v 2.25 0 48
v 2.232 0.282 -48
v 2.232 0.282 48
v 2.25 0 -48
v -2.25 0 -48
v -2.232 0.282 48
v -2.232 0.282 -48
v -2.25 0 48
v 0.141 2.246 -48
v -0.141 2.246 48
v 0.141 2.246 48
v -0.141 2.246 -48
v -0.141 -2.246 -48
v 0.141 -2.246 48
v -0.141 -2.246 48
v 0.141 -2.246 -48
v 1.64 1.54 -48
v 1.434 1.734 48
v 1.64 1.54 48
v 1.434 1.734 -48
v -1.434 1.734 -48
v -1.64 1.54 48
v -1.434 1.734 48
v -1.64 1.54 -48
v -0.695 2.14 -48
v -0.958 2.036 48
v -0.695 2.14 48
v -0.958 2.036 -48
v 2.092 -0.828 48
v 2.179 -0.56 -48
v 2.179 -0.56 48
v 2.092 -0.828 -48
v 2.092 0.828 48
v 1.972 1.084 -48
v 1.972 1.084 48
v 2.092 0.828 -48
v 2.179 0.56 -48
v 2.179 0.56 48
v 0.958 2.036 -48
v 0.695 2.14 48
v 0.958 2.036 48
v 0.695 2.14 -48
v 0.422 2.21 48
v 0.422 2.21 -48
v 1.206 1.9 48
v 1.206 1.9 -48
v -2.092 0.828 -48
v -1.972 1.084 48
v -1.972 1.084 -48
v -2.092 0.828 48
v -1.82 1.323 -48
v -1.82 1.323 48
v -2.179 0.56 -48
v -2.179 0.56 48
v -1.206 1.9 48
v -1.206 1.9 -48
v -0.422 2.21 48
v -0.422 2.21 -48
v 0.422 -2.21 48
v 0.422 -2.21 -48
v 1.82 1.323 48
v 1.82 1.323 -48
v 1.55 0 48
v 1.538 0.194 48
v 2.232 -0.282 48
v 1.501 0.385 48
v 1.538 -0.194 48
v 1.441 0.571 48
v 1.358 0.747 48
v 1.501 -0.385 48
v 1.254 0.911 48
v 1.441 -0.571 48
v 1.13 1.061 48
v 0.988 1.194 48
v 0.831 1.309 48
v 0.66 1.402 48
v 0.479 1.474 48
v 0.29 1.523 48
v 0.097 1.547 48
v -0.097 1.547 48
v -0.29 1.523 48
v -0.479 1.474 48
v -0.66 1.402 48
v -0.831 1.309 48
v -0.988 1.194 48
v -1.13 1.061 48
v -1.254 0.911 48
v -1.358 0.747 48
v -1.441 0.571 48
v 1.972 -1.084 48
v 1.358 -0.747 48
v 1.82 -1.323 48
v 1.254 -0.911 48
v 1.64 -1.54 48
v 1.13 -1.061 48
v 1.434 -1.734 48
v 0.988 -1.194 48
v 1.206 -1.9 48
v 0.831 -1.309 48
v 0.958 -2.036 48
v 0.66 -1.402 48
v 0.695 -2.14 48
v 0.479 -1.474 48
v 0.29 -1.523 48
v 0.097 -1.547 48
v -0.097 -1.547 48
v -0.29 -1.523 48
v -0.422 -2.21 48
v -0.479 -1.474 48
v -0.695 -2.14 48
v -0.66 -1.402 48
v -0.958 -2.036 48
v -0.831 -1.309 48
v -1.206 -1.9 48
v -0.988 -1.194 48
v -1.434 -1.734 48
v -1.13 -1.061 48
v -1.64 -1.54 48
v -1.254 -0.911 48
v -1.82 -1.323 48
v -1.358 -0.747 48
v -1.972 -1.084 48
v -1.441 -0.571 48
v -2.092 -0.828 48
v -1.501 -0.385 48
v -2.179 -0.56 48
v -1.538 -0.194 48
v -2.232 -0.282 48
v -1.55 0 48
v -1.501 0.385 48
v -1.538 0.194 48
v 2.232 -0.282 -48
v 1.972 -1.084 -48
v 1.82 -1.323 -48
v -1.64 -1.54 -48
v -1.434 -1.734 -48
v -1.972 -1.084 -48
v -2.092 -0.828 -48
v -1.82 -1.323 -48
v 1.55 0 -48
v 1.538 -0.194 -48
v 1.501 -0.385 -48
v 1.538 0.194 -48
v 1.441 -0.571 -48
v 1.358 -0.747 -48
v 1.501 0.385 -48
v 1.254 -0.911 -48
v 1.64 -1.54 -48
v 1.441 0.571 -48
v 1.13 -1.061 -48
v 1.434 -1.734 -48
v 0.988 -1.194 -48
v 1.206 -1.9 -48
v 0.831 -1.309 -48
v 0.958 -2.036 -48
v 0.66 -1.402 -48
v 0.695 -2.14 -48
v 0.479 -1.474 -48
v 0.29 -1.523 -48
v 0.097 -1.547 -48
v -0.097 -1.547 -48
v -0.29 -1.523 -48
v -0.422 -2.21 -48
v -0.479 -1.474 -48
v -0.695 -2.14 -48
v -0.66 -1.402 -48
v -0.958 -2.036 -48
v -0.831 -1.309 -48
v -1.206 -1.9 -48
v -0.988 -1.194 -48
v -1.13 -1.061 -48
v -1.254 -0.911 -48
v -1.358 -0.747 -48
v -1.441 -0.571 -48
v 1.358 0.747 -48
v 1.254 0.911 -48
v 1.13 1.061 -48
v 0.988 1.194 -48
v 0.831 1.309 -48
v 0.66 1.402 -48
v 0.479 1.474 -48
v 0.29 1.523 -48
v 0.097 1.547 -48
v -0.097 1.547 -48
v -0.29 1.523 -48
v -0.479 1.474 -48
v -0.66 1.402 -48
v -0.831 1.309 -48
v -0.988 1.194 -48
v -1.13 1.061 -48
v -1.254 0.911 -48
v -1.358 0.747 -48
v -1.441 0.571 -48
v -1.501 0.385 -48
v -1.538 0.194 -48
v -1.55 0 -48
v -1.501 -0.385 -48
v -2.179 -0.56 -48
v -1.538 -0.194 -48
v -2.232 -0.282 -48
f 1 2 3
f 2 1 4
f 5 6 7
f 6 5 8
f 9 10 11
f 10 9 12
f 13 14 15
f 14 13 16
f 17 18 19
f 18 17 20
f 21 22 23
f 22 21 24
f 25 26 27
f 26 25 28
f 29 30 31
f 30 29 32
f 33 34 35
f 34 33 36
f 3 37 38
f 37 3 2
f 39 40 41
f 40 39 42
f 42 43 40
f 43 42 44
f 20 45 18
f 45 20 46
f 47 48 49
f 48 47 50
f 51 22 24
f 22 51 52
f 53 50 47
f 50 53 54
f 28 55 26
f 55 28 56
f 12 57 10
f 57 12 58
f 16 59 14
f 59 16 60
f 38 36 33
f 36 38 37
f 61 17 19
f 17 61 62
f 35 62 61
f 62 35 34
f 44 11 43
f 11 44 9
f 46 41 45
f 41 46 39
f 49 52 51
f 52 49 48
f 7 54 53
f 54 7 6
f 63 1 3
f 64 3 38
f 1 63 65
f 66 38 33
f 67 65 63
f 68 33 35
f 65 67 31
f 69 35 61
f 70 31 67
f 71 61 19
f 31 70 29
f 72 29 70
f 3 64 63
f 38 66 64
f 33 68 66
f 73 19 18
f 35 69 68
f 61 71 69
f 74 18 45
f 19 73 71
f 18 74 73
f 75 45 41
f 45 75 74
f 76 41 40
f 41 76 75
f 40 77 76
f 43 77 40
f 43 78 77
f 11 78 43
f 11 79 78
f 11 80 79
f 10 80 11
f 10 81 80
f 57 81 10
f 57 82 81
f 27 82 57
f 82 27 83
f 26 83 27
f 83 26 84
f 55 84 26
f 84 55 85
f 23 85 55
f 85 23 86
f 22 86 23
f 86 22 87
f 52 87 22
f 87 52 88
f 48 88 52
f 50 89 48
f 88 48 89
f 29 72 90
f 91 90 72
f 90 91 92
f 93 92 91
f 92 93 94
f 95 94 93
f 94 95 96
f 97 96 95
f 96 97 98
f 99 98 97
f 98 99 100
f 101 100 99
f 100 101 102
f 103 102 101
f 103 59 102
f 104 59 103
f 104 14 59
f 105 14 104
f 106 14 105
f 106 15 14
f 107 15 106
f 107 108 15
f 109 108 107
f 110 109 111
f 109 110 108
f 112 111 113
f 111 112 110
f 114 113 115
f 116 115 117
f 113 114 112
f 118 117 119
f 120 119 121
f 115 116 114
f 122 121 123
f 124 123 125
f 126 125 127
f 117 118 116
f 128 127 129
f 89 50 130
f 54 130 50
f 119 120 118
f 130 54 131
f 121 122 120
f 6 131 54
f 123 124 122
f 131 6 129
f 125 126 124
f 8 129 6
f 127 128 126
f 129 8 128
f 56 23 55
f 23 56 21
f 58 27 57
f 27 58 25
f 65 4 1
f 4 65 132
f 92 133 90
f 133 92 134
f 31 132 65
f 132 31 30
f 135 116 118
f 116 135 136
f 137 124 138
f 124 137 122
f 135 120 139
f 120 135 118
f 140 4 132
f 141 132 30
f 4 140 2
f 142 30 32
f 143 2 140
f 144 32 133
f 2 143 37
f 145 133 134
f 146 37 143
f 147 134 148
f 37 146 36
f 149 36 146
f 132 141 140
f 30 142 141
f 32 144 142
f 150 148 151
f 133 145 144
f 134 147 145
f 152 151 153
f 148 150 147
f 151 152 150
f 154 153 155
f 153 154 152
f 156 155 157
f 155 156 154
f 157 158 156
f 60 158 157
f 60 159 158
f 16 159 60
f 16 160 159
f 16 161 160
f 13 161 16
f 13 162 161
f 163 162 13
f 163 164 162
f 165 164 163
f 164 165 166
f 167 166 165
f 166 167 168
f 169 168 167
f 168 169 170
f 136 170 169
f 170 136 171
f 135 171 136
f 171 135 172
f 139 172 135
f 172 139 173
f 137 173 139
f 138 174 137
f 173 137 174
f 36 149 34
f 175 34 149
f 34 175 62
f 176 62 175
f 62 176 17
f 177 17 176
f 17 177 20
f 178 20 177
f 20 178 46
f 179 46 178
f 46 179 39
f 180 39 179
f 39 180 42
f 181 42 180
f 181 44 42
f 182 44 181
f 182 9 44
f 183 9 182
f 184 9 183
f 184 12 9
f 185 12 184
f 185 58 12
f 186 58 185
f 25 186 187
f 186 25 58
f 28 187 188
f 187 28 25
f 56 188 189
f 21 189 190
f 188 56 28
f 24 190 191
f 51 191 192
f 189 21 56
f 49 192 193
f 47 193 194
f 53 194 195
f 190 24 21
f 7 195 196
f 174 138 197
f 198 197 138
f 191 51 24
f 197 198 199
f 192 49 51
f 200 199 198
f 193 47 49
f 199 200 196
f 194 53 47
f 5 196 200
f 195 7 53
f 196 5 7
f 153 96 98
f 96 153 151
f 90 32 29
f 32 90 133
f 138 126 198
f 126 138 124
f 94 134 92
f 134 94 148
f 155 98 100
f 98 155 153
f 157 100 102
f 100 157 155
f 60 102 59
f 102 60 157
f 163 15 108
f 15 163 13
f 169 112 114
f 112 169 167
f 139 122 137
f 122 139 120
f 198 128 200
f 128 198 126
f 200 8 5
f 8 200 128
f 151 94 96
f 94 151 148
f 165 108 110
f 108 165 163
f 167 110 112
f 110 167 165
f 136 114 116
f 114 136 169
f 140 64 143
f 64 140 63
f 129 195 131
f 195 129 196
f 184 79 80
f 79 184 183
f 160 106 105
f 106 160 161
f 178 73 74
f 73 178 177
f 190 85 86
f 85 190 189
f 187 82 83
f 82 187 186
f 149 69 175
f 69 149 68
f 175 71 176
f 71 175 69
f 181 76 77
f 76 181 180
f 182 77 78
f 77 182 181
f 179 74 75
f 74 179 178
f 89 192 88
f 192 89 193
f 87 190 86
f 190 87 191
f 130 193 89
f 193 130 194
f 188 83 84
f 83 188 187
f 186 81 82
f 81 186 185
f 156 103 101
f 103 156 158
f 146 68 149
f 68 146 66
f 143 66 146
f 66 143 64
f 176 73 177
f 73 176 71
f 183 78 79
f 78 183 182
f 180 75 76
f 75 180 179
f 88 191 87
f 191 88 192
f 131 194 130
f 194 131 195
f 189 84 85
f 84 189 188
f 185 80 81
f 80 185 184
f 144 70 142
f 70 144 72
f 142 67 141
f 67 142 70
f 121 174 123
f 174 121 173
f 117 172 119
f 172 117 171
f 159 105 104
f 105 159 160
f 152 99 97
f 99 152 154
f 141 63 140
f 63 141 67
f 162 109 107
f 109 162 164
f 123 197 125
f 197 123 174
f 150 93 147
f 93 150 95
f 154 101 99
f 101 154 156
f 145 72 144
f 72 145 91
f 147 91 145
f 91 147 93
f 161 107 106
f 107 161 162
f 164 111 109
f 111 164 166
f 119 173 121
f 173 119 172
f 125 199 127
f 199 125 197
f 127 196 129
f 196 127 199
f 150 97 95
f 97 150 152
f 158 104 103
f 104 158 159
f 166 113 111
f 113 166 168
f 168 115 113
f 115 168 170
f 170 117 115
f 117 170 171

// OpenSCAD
$fn = 50;


difference() {
	union() {
		translate(v = [0, 0, -48.0000000000]) {
			cylinder(h = 96, r = 2.2500000000);
		}
	}
	union() {
		translate(v = [0, 0, -100.0000000000]) {
			cylinder(h = 200, r = 1.5500000000);
		}
	}
}
